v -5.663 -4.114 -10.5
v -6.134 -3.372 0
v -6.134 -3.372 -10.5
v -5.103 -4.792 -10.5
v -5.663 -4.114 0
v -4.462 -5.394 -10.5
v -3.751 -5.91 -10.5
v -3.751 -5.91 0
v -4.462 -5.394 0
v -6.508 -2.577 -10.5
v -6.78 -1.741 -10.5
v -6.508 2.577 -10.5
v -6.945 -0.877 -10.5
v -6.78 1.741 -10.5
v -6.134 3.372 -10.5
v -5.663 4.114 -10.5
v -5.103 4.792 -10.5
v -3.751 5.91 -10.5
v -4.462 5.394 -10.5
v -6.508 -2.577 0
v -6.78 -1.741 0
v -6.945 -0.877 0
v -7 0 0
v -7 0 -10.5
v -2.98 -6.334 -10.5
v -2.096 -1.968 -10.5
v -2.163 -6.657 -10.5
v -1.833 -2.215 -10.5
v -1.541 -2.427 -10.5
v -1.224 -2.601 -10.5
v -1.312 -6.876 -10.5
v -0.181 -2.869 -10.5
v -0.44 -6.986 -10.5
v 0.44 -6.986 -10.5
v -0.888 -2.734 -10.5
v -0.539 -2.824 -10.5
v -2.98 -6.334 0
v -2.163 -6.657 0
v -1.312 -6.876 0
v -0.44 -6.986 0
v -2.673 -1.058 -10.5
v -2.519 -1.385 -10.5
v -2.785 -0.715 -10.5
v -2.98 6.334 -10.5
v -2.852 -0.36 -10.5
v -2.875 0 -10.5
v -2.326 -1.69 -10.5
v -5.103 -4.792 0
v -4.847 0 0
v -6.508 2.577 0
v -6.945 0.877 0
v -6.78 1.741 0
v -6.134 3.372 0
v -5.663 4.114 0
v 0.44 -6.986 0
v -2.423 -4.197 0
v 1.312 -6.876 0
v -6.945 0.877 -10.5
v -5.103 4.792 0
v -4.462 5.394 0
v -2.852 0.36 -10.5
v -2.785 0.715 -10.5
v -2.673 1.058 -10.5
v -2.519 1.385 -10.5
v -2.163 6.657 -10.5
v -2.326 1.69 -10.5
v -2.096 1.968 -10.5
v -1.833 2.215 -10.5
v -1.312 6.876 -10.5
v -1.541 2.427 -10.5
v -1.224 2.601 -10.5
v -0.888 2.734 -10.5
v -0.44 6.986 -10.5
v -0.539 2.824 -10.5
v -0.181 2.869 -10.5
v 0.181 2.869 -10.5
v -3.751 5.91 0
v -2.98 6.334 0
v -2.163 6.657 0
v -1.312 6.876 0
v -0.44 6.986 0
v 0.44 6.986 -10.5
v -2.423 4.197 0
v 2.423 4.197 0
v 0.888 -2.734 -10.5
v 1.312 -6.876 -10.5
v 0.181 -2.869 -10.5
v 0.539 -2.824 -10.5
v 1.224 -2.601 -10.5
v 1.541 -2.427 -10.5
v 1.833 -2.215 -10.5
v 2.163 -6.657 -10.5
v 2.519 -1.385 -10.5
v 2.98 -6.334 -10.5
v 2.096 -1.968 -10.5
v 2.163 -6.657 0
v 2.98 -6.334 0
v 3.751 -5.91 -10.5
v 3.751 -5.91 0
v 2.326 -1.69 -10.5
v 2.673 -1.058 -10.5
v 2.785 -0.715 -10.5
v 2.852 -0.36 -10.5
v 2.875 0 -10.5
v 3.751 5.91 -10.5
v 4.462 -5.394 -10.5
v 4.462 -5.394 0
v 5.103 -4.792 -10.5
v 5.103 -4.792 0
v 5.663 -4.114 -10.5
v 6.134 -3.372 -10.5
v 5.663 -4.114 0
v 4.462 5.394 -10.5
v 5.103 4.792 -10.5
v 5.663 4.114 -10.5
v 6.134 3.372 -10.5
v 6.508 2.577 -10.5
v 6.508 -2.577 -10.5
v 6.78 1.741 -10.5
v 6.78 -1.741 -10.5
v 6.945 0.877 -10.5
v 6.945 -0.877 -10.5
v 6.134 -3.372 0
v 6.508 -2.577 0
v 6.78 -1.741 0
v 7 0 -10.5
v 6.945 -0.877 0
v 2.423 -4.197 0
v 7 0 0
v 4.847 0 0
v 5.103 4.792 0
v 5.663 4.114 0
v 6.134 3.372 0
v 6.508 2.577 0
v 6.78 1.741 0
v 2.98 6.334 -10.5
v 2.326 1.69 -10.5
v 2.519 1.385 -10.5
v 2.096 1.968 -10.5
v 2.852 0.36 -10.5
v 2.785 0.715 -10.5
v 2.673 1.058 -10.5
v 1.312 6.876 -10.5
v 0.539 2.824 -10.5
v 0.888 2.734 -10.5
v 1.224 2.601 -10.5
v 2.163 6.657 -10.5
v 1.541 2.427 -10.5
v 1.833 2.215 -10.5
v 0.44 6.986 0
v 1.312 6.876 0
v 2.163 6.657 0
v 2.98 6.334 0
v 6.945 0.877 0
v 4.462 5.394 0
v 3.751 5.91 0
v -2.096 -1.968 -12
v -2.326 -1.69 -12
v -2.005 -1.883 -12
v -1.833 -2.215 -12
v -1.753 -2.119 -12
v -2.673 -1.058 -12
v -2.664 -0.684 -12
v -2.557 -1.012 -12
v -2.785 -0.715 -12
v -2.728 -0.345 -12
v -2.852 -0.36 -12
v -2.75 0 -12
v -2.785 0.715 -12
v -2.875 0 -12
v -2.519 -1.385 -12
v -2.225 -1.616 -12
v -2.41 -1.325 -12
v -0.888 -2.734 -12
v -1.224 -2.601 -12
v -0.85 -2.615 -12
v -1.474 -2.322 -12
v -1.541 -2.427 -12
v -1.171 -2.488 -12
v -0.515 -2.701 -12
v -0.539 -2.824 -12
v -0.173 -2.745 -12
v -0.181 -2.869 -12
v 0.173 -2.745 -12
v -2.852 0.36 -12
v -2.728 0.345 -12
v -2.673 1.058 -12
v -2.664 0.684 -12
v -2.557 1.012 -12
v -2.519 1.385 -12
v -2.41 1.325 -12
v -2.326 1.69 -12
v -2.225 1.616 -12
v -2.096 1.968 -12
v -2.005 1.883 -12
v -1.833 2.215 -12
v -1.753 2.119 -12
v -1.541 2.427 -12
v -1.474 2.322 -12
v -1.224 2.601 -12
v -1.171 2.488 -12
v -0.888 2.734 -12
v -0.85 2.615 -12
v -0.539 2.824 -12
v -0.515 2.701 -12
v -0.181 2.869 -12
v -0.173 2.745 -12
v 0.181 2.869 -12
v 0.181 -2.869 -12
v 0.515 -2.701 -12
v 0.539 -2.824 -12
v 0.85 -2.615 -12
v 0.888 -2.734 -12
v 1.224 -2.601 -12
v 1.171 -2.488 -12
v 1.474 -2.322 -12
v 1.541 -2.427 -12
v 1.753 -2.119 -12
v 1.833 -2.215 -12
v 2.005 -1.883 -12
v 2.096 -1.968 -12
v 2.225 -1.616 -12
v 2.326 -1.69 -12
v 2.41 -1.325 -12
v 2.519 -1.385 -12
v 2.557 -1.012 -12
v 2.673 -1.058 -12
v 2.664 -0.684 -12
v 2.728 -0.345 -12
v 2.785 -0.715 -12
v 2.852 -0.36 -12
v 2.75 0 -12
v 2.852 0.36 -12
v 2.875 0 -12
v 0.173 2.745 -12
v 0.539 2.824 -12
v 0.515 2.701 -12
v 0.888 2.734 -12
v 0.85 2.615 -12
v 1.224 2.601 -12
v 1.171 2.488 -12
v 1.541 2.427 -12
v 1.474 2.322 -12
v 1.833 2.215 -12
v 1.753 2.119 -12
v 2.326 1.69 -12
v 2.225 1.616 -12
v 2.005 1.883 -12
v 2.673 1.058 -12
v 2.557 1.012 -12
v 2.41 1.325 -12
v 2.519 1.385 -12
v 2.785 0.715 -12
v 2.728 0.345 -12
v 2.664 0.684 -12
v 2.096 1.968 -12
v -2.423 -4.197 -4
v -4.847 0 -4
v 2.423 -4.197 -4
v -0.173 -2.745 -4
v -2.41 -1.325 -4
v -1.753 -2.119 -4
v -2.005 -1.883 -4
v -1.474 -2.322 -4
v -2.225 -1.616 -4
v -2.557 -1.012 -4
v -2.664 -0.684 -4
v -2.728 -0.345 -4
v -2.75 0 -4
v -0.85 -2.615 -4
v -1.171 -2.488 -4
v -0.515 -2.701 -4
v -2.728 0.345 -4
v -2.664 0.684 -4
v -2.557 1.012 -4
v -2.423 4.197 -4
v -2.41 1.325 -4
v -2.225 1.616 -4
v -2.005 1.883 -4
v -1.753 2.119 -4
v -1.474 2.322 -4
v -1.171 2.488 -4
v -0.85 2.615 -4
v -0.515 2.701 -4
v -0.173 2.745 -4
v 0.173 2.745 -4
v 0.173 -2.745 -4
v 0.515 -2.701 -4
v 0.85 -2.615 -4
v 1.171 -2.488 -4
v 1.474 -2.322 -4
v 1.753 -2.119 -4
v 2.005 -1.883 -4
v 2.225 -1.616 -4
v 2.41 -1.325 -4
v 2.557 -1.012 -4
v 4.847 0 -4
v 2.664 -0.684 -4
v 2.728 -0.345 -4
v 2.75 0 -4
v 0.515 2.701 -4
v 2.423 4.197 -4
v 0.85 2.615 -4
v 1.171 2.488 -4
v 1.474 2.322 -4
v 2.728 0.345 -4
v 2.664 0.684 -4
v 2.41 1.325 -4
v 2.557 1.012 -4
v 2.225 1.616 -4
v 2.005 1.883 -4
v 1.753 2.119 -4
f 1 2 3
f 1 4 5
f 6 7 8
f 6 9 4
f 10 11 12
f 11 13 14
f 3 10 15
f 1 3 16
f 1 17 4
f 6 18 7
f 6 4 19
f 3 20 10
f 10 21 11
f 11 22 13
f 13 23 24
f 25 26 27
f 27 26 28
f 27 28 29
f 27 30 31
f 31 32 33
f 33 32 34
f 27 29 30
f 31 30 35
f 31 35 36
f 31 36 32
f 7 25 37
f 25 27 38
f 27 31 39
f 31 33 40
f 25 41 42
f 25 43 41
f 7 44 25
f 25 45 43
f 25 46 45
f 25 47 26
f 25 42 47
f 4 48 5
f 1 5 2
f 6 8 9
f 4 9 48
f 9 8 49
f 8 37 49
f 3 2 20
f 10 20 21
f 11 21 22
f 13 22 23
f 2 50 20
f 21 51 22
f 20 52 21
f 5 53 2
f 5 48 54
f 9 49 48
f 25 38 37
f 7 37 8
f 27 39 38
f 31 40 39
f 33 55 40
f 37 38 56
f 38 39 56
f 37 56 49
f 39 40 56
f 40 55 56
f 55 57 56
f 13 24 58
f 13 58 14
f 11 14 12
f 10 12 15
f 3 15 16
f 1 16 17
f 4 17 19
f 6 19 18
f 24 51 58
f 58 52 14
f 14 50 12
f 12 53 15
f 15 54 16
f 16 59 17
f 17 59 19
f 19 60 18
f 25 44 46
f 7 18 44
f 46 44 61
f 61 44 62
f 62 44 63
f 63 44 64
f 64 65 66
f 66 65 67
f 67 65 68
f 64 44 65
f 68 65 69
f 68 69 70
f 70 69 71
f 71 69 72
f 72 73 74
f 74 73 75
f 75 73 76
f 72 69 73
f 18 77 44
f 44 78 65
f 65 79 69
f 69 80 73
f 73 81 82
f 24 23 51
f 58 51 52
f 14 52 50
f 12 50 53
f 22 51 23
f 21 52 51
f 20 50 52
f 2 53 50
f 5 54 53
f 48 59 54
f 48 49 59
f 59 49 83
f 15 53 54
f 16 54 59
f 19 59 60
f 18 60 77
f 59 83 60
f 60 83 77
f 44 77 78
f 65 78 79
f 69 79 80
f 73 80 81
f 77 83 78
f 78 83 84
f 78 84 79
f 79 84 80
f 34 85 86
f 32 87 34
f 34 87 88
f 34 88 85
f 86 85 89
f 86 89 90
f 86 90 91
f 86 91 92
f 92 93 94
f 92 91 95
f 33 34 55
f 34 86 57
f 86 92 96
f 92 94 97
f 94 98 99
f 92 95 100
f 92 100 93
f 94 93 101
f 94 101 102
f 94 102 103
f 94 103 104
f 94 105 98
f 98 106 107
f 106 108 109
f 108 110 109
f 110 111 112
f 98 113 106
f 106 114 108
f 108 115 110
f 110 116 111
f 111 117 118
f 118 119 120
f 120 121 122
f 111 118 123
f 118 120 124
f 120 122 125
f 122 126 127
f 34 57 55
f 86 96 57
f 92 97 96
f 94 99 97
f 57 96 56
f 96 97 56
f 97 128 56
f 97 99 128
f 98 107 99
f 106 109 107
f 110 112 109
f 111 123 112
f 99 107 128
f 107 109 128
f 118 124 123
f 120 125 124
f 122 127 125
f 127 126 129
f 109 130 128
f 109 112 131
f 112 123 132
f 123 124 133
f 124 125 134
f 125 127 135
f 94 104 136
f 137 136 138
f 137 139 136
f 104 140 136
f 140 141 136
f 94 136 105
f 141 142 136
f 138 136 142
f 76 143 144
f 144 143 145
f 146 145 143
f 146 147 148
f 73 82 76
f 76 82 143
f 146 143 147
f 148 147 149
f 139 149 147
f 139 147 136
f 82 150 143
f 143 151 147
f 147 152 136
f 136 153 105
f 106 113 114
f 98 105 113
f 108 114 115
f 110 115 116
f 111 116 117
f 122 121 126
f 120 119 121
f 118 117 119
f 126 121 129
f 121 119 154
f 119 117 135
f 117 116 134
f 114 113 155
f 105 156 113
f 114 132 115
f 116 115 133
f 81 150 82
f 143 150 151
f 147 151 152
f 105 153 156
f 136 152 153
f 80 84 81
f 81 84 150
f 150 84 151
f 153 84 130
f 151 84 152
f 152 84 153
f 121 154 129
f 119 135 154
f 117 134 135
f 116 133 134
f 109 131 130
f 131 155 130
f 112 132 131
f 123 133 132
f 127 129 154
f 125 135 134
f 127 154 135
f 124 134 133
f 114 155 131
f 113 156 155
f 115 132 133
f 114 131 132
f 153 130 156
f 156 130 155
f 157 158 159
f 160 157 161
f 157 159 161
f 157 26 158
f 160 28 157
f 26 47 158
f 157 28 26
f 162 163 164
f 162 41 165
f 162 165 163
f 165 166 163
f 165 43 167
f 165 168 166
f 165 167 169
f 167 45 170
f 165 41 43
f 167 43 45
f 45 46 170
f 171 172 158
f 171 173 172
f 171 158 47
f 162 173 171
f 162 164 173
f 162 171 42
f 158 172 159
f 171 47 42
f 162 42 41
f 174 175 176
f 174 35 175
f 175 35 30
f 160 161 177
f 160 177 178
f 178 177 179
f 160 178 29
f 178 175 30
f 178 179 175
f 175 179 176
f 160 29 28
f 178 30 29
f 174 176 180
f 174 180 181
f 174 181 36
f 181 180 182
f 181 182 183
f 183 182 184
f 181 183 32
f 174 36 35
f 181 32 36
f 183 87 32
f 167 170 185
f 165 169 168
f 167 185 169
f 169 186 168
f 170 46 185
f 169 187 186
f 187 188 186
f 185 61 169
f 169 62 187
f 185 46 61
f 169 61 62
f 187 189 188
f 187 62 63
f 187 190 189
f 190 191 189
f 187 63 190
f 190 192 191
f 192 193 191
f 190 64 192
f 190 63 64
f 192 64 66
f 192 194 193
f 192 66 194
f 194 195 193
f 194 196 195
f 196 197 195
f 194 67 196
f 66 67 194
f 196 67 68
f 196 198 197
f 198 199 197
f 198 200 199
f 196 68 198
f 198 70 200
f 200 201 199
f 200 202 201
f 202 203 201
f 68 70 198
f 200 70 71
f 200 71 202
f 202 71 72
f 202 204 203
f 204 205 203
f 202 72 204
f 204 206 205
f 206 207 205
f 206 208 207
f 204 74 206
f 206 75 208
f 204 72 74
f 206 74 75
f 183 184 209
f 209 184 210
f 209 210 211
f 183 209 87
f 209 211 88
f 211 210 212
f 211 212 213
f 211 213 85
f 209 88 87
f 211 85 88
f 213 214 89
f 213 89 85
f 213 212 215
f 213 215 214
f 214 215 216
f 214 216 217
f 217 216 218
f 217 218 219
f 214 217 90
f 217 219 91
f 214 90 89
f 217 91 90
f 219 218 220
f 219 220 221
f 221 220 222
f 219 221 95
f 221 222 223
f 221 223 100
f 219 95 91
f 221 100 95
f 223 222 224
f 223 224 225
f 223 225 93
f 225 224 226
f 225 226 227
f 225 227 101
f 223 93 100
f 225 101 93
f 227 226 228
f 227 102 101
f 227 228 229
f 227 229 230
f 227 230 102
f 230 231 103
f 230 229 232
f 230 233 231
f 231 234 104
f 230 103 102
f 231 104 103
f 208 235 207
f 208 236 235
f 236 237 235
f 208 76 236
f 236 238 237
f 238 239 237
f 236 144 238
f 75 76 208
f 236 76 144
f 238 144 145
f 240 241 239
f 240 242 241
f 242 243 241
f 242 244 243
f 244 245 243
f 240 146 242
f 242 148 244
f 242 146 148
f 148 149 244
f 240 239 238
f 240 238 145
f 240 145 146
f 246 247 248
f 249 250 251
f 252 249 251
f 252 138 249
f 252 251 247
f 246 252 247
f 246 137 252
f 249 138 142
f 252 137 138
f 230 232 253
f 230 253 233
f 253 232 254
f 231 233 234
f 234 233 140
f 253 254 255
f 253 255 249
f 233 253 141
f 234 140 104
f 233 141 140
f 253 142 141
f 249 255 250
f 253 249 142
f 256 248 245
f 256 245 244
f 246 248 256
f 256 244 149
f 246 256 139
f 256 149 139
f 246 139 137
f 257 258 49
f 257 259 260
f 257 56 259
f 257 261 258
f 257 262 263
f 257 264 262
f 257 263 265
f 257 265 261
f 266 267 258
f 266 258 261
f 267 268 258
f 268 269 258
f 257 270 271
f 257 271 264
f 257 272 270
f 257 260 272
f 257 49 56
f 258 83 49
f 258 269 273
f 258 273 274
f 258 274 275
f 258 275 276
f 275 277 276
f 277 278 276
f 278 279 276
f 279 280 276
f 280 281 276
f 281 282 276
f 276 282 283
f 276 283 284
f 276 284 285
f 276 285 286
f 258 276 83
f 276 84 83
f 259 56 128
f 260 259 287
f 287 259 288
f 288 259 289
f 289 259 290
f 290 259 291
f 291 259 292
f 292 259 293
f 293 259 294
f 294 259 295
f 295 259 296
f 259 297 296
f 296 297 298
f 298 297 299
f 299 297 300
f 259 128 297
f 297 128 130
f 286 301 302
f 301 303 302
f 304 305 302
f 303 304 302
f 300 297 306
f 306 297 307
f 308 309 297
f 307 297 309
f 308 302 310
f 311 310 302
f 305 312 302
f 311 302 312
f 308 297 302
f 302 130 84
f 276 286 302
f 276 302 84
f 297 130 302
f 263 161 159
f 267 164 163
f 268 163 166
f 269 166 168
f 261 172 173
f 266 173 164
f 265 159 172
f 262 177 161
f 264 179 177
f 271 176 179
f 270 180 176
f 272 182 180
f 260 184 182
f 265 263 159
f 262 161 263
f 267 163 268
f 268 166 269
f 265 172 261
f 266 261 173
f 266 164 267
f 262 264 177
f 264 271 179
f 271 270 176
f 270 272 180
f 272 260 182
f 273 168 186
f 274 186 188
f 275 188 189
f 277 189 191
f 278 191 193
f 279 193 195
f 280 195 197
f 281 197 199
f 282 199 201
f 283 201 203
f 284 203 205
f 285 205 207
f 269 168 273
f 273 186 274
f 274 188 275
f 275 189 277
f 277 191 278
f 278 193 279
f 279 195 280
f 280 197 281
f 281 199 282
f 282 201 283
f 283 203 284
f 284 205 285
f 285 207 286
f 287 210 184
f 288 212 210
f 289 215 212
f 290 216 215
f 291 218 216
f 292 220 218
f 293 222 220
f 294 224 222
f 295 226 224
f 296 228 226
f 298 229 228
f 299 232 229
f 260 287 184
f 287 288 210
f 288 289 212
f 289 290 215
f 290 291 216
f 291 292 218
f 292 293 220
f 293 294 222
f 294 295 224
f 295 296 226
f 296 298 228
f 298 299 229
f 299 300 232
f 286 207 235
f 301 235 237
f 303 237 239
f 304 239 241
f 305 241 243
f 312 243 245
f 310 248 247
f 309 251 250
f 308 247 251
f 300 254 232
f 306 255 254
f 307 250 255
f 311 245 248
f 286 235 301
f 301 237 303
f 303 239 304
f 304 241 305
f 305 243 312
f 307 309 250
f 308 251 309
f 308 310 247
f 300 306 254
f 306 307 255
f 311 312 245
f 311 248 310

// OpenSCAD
$fn = 50;


difference() {
	union() {
		translate(v = [0, 0, -10.5000000000]) {
			cylinder(h = 10.5000000000, r = 7.0000000000);
		}
		#translate(v = [0, 0, -12.0000000000]) {
			cylinder(h = 12, r = 2.8750000000);
		}
	}
	union() {
		translate(v = [0, 0, 0]) {
			rotate(a = [0, 0, 0]) {
				difference() {
					union() {
						translate(v = [0, 0, -4]) {
							linear_extrude(height = 4) {
								polygon(points = [[4.8468000000, 0.0000000000], [2.4234000000, 4.1974519271], [-2.4234000000, 4.1974519271], [-4.8468000000, 0.0000000000], [-2.4234000000, -4.1974519271], [2.4234000000, -4.1974519271]]);
							}
						}
					}
					union();
				}
			}
		}
		#translate(v = [0, 0, -100.0000000000]) {
			cylinder(h = 200, r = 2.7500000000);
		}
	}
}
